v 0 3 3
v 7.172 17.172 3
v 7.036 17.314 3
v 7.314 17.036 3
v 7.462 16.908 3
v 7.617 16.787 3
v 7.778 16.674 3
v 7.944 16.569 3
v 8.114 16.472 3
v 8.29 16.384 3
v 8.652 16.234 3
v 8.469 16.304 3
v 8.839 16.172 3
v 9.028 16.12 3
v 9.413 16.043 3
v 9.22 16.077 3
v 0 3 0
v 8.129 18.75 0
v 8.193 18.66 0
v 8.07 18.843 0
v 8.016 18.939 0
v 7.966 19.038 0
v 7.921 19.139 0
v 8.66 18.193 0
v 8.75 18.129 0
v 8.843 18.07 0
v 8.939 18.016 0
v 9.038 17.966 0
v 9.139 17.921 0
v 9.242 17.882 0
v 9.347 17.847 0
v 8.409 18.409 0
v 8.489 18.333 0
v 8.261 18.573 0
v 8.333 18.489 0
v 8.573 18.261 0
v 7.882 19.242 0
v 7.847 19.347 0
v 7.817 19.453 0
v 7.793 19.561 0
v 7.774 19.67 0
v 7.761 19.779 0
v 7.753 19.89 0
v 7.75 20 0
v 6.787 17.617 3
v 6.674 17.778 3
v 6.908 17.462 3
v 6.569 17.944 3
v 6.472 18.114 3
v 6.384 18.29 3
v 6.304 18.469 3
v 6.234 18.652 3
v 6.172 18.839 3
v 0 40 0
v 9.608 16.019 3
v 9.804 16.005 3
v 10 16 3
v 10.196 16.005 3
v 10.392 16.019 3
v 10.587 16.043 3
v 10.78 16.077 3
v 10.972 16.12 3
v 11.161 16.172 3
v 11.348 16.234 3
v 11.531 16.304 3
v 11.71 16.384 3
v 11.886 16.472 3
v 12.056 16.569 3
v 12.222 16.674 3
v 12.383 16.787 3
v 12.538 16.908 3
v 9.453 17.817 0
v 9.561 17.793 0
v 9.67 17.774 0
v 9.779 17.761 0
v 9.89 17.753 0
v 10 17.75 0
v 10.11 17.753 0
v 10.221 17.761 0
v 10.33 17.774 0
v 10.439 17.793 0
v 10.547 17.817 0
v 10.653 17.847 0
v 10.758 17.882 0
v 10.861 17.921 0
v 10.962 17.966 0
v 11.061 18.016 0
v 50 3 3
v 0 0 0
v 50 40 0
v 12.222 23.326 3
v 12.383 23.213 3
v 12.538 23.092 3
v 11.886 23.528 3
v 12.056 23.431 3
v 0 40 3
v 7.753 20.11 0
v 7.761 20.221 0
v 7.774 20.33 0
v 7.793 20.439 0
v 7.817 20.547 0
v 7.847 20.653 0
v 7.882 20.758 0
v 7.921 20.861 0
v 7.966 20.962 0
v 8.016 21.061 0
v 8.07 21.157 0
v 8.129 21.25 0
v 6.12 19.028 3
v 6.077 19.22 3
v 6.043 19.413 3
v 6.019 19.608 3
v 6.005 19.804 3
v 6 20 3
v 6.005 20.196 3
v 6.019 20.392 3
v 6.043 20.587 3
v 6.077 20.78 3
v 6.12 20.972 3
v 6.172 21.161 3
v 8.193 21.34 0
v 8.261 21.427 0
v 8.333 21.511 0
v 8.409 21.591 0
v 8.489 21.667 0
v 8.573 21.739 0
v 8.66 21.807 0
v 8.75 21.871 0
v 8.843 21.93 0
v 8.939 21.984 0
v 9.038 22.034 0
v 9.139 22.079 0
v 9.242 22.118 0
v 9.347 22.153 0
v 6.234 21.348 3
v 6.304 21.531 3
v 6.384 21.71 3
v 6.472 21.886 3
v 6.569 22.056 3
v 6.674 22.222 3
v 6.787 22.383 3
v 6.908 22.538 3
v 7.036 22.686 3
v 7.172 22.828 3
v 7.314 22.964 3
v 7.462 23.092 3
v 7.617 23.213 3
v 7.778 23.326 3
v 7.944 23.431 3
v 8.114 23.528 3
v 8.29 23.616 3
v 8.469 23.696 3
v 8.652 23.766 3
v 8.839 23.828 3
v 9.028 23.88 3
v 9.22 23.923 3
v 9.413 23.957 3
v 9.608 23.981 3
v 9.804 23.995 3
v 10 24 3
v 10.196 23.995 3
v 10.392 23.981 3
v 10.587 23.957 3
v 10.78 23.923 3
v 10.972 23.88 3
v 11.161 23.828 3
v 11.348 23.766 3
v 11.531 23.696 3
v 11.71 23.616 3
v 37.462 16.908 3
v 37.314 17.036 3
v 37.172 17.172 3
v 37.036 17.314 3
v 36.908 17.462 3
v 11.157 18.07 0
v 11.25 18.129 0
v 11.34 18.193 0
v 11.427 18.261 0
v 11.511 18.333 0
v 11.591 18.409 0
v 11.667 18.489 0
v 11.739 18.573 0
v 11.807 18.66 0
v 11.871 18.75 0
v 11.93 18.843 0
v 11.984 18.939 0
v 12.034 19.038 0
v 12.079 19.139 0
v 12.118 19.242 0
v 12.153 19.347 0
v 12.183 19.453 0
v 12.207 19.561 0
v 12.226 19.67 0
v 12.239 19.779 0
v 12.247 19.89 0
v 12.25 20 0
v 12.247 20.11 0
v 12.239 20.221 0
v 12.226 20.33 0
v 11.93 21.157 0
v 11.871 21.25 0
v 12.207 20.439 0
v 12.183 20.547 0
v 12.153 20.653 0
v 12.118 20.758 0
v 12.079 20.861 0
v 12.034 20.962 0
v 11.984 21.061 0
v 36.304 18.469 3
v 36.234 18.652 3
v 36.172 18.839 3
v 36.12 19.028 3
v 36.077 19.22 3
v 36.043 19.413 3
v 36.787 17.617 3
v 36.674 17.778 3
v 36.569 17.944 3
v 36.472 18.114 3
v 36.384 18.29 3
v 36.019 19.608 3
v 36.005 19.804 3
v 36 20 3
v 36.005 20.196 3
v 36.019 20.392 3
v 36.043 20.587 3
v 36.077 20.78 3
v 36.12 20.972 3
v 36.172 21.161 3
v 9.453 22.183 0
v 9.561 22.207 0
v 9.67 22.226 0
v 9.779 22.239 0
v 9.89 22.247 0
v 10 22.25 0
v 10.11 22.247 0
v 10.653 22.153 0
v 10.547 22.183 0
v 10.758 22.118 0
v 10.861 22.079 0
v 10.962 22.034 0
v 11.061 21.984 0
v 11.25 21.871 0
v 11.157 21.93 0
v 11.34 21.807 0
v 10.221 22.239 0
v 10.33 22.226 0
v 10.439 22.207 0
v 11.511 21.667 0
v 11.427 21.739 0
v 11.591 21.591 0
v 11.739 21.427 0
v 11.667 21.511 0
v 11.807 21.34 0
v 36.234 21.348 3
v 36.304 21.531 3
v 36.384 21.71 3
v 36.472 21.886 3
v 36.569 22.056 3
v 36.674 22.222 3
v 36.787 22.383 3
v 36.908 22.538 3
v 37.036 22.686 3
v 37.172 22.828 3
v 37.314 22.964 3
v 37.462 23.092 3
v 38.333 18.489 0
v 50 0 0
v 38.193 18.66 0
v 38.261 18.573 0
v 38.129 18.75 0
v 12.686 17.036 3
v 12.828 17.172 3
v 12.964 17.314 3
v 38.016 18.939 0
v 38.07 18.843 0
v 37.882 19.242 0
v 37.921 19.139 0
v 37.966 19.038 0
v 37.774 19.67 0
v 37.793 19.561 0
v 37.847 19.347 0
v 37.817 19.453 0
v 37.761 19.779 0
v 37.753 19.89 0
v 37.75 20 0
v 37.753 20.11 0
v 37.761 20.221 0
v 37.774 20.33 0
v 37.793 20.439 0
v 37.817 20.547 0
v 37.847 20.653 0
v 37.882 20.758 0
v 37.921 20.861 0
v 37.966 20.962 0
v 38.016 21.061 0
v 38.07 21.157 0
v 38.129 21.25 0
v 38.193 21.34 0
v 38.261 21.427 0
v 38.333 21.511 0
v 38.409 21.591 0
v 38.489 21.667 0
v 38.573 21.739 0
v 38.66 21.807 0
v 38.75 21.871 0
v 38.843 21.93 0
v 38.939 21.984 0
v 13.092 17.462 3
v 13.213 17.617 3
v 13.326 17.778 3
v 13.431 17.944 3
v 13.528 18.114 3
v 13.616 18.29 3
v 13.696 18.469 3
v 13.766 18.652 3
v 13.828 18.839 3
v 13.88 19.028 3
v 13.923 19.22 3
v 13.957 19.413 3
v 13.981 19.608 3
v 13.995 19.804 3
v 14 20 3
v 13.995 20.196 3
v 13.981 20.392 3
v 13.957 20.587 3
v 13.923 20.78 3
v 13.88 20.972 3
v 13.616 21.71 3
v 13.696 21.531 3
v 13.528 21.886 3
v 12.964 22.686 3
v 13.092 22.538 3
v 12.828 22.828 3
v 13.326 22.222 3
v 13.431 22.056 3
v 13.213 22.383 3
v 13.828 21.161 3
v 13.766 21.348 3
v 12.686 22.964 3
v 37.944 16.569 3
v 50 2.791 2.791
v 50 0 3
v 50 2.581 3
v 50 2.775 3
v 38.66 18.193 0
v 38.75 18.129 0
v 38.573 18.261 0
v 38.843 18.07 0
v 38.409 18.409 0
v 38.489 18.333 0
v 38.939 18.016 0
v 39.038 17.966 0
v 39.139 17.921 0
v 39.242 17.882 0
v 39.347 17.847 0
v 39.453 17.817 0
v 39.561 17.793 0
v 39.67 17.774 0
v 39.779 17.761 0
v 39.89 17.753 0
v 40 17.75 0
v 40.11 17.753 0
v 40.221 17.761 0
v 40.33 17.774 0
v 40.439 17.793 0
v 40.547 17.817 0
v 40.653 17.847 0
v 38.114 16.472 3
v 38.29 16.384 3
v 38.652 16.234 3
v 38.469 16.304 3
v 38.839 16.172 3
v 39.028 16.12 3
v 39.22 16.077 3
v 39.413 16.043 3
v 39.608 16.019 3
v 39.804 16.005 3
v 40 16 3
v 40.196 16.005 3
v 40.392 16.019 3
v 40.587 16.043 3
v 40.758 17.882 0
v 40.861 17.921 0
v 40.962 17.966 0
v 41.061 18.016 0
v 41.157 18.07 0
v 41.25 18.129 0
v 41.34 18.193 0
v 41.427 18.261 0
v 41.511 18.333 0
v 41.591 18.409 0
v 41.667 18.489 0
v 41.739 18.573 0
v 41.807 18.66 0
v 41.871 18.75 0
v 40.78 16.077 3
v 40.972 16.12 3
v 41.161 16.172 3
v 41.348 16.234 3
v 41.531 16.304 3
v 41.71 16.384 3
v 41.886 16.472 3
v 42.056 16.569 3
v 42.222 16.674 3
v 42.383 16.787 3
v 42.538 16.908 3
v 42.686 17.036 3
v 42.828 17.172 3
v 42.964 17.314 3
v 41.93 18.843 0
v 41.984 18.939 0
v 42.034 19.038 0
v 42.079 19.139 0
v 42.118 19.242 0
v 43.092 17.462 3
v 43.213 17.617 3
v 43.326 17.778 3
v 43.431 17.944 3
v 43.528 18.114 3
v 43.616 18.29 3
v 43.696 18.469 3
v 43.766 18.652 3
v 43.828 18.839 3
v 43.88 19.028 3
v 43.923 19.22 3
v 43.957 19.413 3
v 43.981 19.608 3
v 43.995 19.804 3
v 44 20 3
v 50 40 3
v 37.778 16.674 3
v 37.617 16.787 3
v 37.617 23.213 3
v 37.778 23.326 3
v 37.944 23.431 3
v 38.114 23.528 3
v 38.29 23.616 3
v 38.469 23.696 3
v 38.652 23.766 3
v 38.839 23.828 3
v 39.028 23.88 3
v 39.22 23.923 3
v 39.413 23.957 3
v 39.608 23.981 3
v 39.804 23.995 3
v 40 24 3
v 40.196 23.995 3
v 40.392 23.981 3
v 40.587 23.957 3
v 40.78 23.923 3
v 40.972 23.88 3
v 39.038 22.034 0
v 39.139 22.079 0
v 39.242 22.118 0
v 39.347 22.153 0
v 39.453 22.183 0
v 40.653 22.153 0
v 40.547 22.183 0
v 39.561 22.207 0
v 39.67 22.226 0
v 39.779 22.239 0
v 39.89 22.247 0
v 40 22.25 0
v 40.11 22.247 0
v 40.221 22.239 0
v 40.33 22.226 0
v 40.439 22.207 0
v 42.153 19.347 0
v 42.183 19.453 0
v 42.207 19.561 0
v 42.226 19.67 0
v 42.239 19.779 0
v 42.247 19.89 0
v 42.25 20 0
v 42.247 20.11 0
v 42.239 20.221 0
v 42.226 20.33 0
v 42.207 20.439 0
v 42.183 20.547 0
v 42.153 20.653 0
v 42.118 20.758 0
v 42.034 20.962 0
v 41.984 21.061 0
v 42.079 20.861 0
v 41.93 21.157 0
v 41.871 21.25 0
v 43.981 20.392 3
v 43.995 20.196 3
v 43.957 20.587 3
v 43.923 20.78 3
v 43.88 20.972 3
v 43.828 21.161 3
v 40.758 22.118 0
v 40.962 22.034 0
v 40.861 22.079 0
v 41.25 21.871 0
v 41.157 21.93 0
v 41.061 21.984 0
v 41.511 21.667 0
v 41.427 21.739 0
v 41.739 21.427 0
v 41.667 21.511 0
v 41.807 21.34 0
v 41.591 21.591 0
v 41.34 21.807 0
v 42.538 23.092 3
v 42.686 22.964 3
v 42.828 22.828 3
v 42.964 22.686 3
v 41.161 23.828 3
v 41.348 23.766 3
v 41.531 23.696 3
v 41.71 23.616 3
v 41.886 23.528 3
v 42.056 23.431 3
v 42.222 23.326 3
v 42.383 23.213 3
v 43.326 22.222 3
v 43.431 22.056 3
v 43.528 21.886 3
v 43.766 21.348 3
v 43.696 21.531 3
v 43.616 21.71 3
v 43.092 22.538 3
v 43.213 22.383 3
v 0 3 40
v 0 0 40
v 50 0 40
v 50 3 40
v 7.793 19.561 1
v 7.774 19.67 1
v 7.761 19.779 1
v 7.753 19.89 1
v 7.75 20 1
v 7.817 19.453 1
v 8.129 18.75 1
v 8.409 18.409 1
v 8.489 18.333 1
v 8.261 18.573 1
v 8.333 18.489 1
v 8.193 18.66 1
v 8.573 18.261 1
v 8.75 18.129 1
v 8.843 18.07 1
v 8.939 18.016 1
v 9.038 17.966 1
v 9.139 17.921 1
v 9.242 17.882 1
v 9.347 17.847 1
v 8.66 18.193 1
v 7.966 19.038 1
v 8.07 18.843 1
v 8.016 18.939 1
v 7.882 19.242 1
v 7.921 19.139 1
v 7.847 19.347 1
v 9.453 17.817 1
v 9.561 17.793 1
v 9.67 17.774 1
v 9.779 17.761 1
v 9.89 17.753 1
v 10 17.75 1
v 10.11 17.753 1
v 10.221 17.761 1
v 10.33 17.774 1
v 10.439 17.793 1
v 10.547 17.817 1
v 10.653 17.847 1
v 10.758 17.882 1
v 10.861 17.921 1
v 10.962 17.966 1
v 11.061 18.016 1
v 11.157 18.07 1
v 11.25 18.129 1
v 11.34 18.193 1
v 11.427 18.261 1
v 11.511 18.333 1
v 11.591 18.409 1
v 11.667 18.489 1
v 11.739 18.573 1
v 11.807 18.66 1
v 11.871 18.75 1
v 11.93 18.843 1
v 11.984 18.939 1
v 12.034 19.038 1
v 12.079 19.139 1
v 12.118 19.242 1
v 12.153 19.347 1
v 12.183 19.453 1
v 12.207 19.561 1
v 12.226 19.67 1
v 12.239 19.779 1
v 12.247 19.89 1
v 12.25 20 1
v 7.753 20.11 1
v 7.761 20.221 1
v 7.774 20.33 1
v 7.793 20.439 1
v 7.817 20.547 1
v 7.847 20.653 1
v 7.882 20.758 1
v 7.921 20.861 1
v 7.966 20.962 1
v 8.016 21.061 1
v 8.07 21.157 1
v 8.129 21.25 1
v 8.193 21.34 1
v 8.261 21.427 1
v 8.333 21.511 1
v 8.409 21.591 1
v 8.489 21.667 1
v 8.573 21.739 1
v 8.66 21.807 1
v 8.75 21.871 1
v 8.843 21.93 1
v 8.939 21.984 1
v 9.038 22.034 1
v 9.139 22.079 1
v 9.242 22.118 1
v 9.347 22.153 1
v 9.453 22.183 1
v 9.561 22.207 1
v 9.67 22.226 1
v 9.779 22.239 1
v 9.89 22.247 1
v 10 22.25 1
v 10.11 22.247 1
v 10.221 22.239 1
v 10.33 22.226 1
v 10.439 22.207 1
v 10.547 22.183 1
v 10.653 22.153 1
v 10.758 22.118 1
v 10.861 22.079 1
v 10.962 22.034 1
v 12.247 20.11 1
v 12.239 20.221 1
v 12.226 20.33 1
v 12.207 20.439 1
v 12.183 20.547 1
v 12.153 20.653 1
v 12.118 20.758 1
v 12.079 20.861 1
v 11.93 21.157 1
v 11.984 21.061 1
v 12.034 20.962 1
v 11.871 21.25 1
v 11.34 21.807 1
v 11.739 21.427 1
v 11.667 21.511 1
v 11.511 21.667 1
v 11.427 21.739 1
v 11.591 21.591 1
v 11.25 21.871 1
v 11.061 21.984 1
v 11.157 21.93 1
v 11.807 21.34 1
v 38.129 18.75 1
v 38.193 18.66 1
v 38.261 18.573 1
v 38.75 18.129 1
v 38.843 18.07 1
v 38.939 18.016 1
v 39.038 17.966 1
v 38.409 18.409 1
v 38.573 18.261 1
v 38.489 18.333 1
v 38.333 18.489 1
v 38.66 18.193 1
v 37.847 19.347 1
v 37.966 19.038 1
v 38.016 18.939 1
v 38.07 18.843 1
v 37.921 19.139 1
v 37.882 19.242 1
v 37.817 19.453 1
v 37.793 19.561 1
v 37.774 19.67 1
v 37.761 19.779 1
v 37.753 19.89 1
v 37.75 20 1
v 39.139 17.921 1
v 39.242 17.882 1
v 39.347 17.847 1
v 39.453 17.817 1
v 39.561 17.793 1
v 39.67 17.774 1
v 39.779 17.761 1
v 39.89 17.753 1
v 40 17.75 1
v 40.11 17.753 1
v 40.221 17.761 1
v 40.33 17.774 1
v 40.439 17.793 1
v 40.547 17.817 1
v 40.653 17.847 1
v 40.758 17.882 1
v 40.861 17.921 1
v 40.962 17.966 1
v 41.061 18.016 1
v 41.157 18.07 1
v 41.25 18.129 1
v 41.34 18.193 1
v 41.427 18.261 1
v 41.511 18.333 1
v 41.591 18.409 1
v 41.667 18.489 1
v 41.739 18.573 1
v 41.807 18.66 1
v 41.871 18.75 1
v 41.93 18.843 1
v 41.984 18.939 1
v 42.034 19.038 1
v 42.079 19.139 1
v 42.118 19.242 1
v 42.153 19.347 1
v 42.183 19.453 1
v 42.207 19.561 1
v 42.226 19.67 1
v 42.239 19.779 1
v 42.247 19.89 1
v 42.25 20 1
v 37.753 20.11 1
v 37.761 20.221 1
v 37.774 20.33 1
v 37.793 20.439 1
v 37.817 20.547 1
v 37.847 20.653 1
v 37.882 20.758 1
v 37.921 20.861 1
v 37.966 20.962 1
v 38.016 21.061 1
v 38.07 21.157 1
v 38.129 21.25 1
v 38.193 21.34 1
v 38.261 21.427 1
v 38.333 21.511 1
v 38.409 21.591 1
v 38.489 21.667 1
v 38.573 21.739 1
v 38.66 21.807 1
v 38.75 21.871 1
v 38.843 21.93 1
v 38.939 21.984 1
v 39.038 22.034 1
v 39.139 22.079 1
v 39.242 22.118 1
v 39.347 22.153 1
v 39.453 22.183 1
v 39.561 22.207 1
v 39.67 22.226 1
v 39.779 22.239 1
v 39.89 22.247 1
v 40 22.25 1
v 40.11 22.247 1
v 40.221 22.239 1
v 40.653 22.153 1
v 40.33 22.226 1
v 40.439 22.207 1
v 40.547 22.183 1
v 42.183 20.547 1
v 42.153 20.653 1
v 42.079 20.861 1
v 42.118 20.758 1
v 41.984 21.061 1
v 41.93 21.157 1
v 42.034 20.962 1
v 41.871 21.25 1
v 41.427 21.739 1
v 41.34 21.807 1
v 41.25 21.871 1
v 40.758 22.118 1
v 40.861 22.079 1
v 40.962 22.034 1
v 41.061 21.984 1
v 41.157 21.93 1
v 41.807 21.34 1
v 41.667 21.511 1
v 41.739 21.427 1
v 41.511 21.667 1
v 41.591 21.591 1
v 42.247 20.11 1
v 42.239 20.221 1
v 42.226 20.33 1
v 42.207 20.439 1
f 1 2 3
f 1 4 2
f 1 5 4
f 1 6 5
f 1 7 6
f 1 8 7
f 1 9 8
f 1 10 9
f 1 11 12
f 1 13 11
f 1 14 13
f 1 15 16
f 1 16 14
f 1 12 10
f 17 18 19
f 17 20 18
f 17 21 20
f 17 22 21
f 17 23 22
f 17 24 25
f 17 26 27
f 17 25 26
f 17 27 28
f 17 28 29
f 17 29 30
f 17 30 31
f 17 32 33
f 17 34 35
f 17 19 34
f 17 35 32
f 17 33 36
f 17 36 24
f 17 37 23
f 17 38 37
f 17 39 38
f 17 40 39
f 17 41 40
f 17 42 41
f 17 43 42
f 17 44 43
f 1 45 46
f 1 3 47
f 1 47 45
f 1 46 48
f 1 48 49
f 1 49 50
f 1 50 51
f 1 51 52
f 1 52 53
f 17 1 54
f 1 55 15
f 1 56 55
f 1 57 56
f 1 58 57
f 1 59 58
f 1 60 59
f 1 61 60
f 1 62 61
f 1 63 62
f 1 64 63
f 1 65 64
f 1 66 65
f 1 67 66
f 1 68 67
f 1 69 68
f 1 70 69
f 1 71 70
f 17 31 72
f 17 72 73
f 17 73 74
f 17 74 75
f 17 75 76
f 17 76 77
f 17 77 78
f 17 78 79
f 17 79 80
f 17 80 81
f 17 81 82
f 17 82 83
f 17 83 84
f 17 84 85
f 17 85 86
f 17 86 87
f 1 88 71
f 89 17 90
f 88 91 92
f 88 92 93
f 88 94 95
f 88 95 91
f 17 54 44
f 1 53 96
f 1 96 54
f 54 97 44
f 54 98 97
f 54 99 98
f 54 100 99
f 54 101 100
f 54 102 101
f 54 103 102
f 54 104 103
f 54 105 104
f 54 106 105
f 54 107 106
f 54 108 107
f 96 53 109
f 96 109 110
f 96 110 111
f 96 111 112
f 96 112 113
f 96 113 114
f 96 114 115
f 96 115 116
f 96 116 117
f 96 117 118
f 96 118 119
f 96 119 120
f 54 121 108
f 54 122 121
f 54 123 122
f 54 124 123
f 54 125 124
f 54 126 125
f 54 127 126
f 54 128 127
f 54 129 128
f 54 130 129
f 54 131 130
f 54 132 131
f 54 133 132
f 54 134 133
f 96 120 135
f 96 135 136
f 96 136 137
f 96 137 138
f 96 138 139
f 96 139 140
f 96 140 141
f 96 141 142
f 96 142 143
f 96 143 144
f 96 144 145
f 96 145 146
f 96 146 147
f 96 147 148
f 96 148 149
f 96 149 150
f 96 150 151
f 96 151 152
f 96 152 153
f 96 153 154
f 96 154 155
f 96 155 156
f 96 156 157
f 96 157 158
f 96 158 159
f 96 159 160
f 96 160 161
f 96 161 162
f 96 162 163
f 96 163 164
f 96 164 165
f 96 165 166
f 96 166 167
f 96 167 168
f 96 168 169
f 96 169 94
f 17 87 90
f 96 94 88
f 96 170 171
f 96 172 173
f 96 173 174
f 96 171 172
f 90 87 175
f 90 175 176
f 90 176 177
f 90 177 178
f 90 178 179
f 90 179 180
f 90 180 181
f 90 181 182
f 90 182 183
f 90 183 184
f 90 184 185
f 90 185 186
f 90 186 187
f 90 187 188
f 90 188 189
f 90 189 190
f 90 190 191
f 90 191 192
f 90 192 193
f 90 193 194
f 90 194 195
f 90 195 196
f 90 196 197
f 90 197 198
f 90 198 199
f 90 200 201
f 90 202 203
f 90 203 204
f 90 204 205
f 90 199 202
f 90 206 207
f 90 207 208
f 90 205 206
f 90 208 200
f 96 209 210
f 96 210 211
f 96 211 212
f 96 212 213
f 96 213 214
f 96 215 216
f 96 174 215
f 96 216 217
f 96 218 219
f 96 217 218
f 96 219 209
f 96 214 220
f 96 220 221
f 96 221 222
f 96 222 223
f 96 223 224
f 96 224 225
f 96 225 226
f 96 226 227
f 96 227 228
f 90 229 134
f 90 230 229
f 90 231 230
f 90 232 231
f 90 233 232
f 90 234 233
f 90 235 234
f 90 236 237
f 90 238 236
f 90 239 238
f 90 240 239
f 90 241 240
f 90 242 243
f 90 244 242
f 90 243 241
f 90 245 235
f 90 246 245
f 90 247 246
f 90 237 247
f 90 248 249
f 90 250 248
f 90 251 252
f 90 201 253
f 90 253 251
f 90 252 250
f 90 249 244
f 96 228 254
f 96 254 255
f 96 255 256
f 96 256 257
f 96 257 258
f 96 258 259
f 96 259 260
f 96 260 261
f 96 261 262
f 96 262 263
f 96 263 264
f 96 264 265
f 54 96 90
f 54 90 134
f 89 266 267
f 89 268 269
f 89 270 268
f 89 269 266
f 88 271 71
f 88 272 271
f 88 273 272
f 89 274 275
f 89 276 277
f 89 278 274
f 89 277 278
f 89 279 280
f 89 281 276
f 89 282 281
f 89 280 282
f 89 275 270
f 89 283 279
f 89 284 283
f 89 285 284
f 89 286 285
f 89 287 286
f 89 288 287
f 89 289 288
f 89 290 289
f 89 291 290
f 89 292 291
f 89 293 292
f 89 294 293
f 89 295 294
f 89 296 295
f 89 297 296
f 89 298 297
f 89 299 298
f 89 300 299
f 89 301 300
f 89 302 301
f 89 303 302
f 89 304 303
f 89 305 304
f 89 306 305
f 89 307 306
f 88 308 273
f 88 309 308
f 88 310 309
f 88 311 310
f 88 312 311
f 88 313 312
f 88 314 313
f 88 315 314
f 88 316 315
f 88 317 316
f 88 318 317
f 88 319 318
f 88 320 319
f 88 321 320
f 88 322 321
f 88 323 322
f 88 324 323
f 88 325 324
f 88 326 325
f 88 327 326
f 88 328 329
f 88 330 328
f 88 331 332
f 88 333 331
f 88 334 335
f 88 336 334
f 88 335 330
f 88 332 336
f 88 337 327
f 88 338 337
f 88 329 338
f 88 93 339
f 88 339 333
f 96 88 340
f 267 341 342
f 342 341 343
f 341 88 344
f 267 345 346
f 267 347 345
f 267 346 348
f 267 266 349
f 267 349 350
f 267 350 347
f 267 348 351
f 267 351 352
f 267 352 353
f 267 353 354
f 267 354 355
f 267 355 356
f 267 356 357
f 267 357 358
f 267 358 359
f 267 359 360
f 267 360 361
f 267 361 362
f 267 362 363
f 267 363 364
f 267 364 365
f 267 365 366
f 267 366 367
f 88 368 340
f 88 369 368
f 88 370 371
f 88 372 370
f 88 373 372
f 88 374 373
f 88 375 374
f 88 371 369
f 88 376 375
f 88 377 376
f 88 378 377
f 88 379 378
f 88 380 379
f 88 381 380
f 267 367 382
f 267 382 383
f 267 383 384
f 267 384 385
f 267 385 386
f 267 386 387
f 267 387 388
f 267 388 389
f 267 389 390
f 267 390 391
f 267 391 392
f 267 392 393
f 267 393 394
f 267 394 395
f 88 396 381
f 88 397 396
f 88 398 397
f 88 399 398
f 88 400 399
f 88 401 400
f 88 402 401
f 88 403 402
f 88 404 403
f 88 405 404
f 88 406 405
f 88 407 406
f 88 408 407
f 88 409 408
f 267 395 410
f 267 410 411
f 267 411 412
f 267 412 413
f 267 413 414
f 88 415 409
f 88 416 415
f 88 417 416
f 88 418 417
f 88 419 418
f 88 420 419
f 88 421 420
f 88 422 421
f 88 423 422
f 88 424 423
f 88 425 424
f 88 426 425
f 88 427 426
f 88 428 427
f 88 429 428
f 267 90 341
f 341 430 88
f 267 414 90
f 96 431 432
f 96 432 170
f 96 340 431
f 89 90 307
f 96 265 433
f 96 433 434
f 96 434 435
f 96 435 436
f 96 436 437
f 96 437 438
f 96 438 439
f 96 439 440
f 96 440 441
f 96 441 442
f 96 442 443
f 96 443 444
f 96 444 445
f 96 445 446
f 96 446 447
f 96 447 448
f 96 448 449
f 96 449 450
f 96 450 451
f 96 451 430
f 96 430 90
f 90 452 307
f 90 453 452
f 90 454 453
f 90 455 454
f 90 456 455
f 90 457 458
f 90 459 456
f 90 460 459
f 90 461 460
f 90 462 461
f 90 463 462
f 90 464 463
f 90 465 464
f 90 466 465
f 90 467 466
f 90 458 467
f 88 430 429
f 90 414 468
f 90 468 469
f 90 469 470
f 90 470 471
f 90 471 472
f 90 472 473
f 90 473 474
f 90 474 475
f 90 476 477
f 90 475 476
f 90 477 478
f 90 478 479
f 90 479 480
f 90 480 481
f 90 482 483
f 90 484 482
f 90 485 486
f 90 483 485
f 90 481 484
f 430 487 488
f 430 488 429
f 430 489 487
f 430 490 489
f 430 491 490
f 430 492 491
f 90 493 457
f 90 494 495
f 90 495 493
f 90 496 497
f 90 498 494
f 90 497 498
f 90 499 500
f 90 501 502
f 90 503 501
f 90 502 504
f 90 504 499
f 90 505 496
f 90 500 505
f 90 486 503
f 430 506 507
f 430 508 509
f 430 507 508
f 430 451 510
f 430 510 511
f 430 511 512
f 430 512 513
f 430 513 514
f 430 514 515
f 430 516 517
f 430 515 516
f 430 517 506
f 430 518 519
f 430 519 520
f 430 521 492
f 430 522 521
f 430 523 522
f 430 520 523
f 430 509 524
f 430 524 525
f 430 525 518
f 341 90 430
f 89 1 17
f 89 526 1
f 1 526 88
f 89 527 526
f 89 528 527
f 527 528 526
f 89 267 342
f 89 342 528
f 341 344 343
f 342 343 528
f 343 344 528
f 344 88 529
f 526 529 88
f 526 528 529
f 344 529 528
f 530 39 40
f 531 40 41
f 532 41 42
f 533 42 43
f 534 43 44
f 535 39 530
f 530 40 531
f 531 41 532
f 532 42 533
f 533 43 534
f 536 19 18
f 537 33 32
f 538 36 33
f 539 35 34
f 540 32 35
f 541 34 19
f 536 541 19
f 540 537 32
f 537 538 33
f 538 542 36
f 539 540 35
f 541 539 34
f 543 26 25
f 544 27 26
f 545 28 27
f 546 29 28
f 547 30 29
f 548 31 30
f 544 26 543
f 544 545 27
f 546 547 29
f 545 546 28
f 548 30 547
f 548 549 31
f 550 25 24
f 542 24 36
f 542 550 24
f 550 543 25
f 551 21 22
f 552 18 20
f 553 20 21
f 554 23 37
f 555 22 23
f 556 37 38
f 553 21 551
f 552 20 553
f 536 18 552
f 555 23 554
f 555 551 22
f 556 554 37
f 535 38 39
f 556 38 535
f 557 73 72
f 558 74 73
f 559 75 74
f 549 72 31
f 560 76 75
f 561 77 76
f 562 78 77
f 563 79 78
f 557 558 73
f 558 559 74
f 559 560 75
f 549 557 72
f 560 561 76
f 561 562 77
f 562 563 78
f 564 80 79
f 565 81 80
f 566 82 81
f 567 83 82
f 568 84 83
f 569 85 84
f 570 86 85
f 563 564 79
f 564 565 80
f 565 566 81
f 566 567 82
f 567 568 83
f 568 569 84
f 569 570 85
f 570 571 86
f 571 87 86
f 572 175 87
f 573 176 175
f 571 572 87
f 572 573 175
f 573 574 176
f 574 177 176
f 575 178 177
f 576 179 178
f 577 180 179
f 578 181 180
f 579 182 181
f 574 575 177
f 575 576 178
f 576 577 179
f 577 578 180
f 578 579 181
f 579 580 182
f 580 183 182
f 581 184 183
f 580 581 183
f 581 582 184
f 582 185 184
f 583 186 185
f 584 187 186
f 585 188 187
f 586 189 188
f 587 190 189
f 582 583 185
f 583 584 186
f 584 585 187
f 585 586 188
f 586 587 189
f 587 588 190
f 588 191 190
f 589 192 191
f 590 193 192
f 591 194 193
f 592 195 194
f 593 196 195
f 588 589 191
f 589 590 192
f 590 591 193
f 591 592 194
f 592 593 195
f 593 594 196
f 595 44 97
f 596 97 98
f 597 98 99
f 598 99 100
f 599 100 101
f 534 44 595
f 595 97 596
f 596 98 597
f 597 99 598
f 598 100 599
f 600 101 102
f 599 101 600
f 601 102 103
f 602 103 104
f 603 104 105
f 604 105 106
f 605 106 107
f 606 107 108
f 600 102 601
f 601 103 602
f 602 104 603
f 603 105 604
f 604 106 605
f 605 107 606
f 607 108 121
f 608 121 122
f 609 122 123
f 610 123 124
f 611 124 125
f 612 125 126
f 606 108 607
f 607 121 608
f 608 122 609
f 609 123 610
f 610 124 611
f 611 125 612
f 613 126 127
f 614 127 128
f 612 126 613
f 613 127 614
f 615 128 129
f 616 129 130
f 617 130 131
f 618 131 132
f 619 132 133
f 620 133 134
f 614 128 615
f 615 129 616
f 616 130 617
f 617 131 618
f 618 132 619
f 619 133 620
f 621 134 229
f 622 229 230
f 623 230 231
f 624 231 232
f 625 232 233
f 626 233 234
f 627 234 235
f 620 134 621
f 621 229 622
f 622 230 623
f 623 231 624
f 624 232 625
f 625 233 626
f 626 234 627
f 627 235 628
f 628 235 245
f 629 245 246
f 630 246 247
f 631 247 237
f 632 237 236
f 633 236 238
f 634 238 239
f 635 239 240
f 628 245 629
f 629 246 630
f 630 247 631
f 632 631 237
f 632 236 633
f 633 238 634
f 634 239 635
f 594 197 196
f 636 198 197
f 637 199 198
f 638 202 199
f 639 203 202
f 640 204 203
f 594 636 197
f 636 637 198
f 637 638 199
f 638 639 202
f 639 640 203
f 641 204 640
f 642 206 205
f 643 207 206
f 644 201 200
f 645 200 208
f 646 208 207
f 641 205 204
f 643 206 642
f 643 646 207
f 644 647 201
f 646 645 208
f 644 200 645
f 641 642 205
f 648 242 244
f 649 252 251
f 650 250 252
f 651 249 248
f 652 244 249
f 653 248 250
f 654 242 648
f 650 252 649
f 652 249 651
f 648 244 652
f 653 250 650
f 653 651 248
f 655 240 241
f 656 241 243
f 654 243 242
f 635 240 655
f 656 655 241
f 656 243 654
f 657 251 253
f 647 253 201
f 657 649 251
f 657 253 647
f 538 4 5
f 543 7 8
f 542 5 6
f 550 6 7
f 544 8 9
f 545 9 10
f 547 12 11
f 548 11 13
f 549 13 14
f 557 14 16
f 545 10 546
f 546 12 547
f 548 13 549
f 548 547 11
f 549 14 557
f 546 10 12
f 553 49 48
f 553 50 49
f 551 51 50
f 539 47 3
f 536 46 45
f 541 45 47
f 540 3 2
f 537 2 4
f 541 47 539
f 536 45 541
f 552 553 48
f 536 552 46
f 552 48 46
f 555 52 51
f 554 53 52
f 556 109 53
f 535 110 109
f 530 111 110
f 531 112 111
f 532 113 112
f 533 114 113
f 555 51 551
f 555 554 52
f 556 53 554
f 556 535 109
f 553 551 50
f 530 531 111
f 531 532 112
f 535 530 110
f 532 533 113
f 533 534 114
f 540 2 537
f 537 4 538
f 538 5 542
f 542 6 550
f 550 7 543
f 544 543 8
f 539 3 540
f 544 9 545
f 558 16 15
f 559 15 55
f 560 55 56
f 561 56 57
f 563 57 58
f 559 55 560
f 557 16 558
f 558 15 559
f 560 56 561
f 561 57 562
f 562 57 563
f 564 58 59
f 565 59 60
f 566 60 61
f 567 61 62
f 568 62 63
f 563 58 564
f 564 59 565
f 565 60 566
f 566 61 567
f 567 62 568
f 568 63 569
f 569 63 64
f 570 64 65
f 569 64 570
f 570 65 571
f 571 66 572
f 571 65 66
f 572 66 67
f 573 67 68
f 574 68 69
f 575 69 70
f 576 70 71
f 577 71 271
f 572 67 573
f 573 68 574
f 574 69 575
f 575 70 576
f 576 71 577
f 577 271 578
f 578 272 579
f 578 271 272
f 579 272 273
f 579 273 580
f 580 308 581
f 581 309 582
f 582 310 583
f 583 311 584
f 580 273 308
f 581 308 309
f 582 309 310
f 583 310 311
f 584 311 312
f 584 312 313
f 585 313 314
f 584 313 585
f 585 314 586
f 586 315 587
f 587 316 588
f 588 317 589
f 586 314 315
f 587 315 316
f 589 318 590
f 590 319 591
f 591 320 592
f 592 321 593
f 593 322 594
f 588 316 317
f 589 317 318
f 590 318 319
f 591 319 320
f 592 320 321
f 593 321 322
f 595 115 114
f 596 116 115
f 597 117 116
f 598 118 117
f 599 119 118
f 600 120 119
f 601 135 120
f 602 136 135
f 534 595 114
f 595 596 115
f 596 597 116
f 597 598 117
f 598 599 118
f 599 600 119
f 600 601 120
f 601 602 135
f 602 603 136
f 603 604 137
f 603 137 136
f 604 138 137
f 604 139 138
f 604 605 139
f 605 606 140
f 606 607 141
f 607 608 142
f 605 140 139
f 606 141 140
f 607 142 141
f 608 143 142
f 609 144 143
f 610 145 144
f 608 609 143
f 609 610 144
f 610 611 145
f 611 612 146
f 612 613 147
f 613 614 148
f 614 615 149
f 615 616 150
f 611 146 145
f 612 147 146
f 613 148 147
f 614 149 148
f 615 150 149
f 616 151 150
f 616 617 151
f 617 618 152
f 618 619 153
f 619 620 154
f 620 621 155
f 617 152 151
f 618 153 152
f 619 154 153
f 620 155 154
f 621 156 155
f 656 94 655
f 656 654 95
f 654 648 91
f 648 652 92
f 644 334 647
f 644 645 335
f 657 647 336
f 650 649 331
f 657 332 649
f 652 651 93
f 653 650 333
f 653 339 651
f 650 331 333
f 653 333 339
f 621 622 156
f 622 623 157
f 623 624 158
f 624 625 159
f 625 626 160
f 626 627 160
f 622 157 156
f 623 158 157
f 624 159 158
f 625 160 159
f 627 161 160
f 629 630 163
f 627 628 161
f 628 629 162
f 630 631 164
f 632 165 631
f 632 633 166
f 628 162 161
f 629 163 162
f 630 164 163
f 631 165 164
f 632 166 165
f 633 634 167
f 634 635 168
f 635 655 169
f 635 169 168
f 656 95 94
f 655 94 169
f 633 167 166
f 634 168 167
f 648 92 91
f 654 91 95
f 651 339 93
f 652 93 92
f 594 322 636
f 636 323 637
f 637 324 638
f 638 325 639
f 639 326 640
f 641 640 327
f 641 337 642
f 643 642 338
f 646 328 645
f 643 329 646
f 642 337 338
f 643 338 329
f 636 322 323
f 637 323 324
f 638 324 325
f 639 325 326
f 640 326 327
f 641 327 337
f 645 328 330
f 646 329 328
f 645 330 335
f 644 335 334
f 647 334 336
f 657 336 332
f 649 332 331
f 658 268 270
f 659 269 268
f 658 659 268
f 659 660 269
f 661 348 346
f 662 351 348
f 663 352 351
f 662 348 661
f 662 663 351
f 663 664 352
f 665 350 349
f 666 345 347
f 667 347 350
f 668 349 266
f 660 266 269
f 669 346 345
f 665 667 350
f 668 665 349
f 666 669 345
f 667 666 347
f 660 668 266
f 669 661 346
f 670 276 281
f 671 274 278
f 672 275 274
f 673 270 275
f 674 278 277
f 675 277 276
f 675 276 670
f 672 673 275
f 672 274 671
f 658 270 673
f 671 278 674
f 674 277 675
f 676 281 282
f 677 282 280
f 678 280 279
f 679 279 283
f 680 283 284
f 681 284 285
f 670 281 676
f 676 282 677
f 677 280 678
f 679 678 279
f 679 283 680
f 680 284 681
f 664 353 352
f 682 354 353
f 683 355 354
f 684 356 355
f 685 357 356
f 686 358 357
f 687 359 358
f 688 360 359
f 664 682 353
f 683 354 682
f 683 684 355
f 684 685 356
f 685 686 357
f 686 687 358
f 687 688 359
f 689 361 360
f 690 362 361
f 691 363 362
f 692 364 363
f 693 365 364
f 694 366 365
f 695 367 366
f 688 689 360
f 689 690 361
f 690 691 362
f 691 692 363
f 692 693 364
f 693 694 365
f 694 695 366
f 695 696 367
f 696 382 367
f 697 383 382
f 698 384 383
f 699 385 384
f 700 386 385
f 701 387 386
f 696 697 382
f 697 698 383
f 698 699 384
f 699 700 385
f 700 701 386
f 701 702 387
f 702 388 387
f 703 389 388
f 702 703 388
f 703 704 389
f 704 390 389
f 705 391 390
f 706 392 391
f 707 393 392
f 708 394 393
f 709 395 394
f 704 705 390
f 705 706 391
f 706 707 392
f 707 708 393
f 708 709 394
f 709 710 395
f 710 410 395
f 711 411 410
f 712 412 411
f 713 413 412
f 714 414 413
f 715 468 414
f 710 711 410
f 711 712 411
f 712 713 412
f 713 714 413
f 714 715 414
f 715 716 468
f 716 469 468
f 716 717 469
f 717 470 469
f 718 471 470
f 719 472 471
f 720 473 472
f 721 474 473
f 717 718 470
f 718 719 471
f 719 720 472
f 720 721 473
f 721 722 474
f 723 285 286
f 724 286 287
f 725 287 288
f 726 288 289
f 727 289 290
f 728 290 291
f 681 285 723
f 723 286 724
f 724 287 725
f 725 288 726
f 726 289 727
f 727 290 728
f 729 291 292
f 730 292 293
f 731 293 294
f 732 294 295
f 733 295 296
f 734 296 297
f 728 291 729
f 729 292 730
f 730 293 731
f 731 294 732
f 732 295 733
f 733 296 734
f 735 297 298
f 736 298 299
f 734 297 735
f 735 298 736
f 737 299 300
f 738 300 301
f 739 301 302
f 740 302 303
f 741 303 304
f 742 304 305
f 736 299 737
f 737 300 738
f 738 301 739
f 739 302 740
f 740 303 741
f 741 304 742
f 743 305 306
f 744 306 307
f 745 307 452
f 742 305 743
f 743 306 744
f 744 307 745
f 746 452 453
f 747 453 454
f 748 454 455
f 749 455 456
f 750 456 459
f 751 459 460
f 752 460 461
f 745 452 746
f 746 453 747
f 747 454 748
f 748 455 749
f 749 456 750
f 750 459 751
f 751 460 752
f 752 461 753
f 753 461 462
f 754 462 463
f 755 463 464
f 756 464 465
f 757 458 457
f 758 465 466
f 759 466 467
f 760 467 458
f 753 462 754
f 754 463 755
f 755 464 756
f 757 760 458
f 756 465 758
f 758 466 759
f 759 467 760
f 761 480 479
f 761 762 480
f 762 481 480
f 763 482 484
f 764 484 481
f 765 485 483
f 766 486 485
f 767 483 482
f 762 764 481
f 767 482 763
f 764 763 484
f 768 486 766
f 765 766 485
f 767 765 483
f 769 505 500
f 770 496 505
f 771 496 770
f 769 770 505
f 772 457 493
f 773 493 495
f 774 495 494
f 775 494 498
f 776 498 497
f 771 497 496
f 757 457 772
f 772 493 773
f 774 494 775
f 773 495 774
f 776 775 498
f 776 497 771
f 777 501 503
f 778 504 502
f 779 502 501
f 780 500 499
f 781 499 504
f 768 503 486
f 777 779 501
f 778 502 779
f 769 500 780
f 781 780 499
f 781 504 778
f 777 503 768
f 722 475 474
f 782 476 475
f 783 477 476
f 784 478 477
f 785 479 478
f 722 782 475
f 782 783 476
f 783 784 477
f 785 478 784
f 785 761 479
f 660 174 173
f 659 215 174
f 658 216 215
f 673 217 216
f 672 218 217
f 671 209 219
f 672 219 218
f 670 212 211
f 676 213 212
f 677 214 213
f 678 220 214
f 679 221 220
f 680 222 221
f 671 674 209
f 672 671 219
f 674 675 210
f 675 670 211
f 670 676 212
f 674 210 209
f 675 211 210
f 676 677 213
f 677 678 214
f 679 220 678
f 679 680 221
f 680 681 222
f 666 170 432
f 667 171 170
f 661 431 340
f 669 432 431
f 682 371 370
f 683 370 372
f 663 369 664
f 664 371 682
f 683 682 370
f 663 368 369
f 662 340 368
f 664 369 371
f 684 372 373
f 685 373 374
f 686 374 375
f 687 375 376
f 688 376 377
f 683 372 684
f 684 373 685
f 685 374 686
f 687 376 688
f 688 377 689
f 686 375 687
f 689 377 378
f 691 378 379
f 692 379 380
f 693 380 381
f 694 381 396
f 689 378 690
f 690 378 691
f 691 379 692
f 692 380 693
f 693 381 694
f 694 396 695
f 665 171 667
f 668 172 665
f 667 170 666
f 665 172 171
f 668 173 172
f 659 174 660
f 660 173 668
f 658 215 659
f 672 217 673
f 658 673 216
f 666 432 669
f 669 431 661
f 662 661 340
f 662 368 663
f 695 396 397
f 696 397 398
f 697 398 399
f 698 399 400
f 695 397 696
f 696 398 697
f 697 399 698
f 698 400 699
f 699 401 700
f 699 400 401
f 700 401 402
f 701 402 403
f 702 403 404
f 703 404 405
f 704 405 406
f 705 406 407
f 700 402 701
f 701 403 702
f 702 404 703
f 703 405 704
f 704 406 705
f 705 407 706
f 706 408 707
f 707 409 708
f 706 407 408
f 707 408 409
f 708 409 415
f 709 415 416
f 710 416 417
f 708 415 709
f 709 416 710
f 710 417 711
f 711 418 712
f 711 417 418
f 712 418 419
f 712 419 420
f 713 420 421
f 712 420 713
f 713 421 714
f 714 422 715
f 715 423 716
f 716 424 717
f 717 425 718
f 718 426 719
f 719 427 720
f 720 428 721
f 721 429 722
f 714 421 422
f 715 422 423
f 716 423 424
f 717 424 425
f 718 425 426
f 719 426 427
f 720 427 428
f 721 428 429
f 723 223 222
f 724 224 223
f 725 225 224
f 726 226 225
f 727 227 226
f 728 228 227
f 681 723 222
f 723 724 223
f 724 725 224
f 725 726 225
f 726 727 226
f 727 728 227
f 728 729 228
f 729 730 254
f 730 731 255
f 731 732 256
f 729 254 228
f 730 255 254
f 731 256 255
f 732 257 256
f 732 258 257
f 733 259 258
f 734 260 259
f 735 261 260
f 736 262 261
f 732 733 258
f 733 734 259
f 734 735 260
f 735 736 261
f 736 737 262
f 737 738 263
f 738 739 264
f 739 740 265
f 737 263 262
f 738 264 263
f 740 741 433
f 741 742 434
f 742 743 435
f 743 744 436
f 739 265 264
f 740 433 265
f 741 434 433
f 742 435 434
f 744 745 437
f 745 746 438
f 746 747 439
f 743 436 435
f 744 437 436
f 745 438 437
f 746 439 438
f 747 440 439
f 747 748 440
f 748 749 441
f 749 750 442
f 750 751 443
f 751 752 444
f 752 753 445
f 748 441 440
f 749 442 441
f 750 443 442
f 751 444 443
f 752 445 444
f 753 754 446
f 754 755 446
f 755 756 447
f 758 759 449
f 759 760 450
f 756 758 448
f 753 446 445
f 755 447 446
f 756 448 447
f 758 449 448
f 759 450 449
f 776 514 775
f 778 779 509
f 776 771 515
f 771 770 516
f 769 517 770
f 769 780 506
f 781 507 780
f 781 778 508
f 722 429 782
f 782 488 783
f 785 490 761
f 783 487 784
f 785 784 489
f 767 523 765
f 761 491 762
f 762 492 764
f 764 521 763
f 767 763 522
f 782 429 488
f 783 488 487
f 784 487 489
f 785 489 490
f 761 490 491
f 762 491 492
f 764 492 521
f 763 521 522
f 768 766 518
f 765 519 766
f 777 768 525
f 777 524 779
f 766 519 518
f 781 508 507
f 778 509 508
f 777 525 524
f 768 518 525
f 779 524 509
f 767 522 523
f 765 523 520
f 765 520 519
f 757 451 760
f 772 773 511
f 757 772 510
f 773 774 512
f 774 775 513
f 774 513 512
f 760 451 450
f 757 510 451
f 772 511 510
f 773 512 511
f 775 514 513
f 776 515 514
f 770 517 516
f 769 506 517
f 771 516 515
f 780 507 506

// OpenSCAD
// openscad
$fn = 128;

// Parameters
w = 50;             // width (X)
len = 40;           // flange length (Y for horizontal, Z for vertical)
t = 3;              // thickness
hole_d = 4.5;       // through hole diameter for M4
cs_d = 8;           // countersink seat diameter (outer)
cs_depth = 2;       // countersink depth
eps = 0.1;          // small margin for boolean robustness

// Hole X positions: 10mm from each lateral edge (symmetric)
hole_x = [10, w - 10];

// Centers along the face midline
h_y = len/2;    // horizontal flange holes: Y coordinate (centerline of horizontal face)
v_z = len/2;    // vertical flange holes: Z coordinate (centerline of vertical face)

module bracket() {
    // Horizontal flange: X:0..w, Y:0..len, Z:0..t
    translate([0,0,0]) cube([w, len, t], center=false);
    // Vertical flange: X:0..w, Y:0..t, Z:0..len
    translate([0,0,0]) cube([w, t, len], center=false);
}

module subtract_holes() {
    // Horizontal flange holes (axis Z), countersink on outer side (+Z)
    for (x = hole_x) {
        // through hole (along Z)
        translate([x, h_y, -eps]) cylinder(h=t + 2*eps, r=hole_d/2, center=false);
        // conical countersink pocket from outer face (+Z): outer (top) radius cs_d/2 -> inner (bottom) radius hole_d/2
        // place base at inner face (t - cs_depth) so it expands toward outer face at z=t
        translate([x, h_y, t - cs_depth]) cylinder(h=cs_depth, r1=hole_d/2, r2=cs_d/2, center=false);
    }

    // Vertical flange holes (axis Y), countersink on outer side (+Y)
    for (x = hole_x) {
        // through hole along Y (rotate cylinder)
        rotate([90,0,0]) translate([x, -eps, v_z]) cylinder(h=t + 2*eps, r=hole_d/2, center=false);
        // conical countersink pocket from outer face (+Y): outer radius cs_d/2 -> inner radius hole_d/2
        // place base at inner face (t - cs_depth) so it expands toward outer face at y=t
        rotate([90,0,0]) translate([x, t - cs_depth, v_z]) cylinder(h=cs_depth, r1=hole_d/2, r2=cs_d/2, center=false);
    }
}

// Final part: union of flanges minus holes/countersinks
difference() {
    bracket();
    subtract_holes();
}
